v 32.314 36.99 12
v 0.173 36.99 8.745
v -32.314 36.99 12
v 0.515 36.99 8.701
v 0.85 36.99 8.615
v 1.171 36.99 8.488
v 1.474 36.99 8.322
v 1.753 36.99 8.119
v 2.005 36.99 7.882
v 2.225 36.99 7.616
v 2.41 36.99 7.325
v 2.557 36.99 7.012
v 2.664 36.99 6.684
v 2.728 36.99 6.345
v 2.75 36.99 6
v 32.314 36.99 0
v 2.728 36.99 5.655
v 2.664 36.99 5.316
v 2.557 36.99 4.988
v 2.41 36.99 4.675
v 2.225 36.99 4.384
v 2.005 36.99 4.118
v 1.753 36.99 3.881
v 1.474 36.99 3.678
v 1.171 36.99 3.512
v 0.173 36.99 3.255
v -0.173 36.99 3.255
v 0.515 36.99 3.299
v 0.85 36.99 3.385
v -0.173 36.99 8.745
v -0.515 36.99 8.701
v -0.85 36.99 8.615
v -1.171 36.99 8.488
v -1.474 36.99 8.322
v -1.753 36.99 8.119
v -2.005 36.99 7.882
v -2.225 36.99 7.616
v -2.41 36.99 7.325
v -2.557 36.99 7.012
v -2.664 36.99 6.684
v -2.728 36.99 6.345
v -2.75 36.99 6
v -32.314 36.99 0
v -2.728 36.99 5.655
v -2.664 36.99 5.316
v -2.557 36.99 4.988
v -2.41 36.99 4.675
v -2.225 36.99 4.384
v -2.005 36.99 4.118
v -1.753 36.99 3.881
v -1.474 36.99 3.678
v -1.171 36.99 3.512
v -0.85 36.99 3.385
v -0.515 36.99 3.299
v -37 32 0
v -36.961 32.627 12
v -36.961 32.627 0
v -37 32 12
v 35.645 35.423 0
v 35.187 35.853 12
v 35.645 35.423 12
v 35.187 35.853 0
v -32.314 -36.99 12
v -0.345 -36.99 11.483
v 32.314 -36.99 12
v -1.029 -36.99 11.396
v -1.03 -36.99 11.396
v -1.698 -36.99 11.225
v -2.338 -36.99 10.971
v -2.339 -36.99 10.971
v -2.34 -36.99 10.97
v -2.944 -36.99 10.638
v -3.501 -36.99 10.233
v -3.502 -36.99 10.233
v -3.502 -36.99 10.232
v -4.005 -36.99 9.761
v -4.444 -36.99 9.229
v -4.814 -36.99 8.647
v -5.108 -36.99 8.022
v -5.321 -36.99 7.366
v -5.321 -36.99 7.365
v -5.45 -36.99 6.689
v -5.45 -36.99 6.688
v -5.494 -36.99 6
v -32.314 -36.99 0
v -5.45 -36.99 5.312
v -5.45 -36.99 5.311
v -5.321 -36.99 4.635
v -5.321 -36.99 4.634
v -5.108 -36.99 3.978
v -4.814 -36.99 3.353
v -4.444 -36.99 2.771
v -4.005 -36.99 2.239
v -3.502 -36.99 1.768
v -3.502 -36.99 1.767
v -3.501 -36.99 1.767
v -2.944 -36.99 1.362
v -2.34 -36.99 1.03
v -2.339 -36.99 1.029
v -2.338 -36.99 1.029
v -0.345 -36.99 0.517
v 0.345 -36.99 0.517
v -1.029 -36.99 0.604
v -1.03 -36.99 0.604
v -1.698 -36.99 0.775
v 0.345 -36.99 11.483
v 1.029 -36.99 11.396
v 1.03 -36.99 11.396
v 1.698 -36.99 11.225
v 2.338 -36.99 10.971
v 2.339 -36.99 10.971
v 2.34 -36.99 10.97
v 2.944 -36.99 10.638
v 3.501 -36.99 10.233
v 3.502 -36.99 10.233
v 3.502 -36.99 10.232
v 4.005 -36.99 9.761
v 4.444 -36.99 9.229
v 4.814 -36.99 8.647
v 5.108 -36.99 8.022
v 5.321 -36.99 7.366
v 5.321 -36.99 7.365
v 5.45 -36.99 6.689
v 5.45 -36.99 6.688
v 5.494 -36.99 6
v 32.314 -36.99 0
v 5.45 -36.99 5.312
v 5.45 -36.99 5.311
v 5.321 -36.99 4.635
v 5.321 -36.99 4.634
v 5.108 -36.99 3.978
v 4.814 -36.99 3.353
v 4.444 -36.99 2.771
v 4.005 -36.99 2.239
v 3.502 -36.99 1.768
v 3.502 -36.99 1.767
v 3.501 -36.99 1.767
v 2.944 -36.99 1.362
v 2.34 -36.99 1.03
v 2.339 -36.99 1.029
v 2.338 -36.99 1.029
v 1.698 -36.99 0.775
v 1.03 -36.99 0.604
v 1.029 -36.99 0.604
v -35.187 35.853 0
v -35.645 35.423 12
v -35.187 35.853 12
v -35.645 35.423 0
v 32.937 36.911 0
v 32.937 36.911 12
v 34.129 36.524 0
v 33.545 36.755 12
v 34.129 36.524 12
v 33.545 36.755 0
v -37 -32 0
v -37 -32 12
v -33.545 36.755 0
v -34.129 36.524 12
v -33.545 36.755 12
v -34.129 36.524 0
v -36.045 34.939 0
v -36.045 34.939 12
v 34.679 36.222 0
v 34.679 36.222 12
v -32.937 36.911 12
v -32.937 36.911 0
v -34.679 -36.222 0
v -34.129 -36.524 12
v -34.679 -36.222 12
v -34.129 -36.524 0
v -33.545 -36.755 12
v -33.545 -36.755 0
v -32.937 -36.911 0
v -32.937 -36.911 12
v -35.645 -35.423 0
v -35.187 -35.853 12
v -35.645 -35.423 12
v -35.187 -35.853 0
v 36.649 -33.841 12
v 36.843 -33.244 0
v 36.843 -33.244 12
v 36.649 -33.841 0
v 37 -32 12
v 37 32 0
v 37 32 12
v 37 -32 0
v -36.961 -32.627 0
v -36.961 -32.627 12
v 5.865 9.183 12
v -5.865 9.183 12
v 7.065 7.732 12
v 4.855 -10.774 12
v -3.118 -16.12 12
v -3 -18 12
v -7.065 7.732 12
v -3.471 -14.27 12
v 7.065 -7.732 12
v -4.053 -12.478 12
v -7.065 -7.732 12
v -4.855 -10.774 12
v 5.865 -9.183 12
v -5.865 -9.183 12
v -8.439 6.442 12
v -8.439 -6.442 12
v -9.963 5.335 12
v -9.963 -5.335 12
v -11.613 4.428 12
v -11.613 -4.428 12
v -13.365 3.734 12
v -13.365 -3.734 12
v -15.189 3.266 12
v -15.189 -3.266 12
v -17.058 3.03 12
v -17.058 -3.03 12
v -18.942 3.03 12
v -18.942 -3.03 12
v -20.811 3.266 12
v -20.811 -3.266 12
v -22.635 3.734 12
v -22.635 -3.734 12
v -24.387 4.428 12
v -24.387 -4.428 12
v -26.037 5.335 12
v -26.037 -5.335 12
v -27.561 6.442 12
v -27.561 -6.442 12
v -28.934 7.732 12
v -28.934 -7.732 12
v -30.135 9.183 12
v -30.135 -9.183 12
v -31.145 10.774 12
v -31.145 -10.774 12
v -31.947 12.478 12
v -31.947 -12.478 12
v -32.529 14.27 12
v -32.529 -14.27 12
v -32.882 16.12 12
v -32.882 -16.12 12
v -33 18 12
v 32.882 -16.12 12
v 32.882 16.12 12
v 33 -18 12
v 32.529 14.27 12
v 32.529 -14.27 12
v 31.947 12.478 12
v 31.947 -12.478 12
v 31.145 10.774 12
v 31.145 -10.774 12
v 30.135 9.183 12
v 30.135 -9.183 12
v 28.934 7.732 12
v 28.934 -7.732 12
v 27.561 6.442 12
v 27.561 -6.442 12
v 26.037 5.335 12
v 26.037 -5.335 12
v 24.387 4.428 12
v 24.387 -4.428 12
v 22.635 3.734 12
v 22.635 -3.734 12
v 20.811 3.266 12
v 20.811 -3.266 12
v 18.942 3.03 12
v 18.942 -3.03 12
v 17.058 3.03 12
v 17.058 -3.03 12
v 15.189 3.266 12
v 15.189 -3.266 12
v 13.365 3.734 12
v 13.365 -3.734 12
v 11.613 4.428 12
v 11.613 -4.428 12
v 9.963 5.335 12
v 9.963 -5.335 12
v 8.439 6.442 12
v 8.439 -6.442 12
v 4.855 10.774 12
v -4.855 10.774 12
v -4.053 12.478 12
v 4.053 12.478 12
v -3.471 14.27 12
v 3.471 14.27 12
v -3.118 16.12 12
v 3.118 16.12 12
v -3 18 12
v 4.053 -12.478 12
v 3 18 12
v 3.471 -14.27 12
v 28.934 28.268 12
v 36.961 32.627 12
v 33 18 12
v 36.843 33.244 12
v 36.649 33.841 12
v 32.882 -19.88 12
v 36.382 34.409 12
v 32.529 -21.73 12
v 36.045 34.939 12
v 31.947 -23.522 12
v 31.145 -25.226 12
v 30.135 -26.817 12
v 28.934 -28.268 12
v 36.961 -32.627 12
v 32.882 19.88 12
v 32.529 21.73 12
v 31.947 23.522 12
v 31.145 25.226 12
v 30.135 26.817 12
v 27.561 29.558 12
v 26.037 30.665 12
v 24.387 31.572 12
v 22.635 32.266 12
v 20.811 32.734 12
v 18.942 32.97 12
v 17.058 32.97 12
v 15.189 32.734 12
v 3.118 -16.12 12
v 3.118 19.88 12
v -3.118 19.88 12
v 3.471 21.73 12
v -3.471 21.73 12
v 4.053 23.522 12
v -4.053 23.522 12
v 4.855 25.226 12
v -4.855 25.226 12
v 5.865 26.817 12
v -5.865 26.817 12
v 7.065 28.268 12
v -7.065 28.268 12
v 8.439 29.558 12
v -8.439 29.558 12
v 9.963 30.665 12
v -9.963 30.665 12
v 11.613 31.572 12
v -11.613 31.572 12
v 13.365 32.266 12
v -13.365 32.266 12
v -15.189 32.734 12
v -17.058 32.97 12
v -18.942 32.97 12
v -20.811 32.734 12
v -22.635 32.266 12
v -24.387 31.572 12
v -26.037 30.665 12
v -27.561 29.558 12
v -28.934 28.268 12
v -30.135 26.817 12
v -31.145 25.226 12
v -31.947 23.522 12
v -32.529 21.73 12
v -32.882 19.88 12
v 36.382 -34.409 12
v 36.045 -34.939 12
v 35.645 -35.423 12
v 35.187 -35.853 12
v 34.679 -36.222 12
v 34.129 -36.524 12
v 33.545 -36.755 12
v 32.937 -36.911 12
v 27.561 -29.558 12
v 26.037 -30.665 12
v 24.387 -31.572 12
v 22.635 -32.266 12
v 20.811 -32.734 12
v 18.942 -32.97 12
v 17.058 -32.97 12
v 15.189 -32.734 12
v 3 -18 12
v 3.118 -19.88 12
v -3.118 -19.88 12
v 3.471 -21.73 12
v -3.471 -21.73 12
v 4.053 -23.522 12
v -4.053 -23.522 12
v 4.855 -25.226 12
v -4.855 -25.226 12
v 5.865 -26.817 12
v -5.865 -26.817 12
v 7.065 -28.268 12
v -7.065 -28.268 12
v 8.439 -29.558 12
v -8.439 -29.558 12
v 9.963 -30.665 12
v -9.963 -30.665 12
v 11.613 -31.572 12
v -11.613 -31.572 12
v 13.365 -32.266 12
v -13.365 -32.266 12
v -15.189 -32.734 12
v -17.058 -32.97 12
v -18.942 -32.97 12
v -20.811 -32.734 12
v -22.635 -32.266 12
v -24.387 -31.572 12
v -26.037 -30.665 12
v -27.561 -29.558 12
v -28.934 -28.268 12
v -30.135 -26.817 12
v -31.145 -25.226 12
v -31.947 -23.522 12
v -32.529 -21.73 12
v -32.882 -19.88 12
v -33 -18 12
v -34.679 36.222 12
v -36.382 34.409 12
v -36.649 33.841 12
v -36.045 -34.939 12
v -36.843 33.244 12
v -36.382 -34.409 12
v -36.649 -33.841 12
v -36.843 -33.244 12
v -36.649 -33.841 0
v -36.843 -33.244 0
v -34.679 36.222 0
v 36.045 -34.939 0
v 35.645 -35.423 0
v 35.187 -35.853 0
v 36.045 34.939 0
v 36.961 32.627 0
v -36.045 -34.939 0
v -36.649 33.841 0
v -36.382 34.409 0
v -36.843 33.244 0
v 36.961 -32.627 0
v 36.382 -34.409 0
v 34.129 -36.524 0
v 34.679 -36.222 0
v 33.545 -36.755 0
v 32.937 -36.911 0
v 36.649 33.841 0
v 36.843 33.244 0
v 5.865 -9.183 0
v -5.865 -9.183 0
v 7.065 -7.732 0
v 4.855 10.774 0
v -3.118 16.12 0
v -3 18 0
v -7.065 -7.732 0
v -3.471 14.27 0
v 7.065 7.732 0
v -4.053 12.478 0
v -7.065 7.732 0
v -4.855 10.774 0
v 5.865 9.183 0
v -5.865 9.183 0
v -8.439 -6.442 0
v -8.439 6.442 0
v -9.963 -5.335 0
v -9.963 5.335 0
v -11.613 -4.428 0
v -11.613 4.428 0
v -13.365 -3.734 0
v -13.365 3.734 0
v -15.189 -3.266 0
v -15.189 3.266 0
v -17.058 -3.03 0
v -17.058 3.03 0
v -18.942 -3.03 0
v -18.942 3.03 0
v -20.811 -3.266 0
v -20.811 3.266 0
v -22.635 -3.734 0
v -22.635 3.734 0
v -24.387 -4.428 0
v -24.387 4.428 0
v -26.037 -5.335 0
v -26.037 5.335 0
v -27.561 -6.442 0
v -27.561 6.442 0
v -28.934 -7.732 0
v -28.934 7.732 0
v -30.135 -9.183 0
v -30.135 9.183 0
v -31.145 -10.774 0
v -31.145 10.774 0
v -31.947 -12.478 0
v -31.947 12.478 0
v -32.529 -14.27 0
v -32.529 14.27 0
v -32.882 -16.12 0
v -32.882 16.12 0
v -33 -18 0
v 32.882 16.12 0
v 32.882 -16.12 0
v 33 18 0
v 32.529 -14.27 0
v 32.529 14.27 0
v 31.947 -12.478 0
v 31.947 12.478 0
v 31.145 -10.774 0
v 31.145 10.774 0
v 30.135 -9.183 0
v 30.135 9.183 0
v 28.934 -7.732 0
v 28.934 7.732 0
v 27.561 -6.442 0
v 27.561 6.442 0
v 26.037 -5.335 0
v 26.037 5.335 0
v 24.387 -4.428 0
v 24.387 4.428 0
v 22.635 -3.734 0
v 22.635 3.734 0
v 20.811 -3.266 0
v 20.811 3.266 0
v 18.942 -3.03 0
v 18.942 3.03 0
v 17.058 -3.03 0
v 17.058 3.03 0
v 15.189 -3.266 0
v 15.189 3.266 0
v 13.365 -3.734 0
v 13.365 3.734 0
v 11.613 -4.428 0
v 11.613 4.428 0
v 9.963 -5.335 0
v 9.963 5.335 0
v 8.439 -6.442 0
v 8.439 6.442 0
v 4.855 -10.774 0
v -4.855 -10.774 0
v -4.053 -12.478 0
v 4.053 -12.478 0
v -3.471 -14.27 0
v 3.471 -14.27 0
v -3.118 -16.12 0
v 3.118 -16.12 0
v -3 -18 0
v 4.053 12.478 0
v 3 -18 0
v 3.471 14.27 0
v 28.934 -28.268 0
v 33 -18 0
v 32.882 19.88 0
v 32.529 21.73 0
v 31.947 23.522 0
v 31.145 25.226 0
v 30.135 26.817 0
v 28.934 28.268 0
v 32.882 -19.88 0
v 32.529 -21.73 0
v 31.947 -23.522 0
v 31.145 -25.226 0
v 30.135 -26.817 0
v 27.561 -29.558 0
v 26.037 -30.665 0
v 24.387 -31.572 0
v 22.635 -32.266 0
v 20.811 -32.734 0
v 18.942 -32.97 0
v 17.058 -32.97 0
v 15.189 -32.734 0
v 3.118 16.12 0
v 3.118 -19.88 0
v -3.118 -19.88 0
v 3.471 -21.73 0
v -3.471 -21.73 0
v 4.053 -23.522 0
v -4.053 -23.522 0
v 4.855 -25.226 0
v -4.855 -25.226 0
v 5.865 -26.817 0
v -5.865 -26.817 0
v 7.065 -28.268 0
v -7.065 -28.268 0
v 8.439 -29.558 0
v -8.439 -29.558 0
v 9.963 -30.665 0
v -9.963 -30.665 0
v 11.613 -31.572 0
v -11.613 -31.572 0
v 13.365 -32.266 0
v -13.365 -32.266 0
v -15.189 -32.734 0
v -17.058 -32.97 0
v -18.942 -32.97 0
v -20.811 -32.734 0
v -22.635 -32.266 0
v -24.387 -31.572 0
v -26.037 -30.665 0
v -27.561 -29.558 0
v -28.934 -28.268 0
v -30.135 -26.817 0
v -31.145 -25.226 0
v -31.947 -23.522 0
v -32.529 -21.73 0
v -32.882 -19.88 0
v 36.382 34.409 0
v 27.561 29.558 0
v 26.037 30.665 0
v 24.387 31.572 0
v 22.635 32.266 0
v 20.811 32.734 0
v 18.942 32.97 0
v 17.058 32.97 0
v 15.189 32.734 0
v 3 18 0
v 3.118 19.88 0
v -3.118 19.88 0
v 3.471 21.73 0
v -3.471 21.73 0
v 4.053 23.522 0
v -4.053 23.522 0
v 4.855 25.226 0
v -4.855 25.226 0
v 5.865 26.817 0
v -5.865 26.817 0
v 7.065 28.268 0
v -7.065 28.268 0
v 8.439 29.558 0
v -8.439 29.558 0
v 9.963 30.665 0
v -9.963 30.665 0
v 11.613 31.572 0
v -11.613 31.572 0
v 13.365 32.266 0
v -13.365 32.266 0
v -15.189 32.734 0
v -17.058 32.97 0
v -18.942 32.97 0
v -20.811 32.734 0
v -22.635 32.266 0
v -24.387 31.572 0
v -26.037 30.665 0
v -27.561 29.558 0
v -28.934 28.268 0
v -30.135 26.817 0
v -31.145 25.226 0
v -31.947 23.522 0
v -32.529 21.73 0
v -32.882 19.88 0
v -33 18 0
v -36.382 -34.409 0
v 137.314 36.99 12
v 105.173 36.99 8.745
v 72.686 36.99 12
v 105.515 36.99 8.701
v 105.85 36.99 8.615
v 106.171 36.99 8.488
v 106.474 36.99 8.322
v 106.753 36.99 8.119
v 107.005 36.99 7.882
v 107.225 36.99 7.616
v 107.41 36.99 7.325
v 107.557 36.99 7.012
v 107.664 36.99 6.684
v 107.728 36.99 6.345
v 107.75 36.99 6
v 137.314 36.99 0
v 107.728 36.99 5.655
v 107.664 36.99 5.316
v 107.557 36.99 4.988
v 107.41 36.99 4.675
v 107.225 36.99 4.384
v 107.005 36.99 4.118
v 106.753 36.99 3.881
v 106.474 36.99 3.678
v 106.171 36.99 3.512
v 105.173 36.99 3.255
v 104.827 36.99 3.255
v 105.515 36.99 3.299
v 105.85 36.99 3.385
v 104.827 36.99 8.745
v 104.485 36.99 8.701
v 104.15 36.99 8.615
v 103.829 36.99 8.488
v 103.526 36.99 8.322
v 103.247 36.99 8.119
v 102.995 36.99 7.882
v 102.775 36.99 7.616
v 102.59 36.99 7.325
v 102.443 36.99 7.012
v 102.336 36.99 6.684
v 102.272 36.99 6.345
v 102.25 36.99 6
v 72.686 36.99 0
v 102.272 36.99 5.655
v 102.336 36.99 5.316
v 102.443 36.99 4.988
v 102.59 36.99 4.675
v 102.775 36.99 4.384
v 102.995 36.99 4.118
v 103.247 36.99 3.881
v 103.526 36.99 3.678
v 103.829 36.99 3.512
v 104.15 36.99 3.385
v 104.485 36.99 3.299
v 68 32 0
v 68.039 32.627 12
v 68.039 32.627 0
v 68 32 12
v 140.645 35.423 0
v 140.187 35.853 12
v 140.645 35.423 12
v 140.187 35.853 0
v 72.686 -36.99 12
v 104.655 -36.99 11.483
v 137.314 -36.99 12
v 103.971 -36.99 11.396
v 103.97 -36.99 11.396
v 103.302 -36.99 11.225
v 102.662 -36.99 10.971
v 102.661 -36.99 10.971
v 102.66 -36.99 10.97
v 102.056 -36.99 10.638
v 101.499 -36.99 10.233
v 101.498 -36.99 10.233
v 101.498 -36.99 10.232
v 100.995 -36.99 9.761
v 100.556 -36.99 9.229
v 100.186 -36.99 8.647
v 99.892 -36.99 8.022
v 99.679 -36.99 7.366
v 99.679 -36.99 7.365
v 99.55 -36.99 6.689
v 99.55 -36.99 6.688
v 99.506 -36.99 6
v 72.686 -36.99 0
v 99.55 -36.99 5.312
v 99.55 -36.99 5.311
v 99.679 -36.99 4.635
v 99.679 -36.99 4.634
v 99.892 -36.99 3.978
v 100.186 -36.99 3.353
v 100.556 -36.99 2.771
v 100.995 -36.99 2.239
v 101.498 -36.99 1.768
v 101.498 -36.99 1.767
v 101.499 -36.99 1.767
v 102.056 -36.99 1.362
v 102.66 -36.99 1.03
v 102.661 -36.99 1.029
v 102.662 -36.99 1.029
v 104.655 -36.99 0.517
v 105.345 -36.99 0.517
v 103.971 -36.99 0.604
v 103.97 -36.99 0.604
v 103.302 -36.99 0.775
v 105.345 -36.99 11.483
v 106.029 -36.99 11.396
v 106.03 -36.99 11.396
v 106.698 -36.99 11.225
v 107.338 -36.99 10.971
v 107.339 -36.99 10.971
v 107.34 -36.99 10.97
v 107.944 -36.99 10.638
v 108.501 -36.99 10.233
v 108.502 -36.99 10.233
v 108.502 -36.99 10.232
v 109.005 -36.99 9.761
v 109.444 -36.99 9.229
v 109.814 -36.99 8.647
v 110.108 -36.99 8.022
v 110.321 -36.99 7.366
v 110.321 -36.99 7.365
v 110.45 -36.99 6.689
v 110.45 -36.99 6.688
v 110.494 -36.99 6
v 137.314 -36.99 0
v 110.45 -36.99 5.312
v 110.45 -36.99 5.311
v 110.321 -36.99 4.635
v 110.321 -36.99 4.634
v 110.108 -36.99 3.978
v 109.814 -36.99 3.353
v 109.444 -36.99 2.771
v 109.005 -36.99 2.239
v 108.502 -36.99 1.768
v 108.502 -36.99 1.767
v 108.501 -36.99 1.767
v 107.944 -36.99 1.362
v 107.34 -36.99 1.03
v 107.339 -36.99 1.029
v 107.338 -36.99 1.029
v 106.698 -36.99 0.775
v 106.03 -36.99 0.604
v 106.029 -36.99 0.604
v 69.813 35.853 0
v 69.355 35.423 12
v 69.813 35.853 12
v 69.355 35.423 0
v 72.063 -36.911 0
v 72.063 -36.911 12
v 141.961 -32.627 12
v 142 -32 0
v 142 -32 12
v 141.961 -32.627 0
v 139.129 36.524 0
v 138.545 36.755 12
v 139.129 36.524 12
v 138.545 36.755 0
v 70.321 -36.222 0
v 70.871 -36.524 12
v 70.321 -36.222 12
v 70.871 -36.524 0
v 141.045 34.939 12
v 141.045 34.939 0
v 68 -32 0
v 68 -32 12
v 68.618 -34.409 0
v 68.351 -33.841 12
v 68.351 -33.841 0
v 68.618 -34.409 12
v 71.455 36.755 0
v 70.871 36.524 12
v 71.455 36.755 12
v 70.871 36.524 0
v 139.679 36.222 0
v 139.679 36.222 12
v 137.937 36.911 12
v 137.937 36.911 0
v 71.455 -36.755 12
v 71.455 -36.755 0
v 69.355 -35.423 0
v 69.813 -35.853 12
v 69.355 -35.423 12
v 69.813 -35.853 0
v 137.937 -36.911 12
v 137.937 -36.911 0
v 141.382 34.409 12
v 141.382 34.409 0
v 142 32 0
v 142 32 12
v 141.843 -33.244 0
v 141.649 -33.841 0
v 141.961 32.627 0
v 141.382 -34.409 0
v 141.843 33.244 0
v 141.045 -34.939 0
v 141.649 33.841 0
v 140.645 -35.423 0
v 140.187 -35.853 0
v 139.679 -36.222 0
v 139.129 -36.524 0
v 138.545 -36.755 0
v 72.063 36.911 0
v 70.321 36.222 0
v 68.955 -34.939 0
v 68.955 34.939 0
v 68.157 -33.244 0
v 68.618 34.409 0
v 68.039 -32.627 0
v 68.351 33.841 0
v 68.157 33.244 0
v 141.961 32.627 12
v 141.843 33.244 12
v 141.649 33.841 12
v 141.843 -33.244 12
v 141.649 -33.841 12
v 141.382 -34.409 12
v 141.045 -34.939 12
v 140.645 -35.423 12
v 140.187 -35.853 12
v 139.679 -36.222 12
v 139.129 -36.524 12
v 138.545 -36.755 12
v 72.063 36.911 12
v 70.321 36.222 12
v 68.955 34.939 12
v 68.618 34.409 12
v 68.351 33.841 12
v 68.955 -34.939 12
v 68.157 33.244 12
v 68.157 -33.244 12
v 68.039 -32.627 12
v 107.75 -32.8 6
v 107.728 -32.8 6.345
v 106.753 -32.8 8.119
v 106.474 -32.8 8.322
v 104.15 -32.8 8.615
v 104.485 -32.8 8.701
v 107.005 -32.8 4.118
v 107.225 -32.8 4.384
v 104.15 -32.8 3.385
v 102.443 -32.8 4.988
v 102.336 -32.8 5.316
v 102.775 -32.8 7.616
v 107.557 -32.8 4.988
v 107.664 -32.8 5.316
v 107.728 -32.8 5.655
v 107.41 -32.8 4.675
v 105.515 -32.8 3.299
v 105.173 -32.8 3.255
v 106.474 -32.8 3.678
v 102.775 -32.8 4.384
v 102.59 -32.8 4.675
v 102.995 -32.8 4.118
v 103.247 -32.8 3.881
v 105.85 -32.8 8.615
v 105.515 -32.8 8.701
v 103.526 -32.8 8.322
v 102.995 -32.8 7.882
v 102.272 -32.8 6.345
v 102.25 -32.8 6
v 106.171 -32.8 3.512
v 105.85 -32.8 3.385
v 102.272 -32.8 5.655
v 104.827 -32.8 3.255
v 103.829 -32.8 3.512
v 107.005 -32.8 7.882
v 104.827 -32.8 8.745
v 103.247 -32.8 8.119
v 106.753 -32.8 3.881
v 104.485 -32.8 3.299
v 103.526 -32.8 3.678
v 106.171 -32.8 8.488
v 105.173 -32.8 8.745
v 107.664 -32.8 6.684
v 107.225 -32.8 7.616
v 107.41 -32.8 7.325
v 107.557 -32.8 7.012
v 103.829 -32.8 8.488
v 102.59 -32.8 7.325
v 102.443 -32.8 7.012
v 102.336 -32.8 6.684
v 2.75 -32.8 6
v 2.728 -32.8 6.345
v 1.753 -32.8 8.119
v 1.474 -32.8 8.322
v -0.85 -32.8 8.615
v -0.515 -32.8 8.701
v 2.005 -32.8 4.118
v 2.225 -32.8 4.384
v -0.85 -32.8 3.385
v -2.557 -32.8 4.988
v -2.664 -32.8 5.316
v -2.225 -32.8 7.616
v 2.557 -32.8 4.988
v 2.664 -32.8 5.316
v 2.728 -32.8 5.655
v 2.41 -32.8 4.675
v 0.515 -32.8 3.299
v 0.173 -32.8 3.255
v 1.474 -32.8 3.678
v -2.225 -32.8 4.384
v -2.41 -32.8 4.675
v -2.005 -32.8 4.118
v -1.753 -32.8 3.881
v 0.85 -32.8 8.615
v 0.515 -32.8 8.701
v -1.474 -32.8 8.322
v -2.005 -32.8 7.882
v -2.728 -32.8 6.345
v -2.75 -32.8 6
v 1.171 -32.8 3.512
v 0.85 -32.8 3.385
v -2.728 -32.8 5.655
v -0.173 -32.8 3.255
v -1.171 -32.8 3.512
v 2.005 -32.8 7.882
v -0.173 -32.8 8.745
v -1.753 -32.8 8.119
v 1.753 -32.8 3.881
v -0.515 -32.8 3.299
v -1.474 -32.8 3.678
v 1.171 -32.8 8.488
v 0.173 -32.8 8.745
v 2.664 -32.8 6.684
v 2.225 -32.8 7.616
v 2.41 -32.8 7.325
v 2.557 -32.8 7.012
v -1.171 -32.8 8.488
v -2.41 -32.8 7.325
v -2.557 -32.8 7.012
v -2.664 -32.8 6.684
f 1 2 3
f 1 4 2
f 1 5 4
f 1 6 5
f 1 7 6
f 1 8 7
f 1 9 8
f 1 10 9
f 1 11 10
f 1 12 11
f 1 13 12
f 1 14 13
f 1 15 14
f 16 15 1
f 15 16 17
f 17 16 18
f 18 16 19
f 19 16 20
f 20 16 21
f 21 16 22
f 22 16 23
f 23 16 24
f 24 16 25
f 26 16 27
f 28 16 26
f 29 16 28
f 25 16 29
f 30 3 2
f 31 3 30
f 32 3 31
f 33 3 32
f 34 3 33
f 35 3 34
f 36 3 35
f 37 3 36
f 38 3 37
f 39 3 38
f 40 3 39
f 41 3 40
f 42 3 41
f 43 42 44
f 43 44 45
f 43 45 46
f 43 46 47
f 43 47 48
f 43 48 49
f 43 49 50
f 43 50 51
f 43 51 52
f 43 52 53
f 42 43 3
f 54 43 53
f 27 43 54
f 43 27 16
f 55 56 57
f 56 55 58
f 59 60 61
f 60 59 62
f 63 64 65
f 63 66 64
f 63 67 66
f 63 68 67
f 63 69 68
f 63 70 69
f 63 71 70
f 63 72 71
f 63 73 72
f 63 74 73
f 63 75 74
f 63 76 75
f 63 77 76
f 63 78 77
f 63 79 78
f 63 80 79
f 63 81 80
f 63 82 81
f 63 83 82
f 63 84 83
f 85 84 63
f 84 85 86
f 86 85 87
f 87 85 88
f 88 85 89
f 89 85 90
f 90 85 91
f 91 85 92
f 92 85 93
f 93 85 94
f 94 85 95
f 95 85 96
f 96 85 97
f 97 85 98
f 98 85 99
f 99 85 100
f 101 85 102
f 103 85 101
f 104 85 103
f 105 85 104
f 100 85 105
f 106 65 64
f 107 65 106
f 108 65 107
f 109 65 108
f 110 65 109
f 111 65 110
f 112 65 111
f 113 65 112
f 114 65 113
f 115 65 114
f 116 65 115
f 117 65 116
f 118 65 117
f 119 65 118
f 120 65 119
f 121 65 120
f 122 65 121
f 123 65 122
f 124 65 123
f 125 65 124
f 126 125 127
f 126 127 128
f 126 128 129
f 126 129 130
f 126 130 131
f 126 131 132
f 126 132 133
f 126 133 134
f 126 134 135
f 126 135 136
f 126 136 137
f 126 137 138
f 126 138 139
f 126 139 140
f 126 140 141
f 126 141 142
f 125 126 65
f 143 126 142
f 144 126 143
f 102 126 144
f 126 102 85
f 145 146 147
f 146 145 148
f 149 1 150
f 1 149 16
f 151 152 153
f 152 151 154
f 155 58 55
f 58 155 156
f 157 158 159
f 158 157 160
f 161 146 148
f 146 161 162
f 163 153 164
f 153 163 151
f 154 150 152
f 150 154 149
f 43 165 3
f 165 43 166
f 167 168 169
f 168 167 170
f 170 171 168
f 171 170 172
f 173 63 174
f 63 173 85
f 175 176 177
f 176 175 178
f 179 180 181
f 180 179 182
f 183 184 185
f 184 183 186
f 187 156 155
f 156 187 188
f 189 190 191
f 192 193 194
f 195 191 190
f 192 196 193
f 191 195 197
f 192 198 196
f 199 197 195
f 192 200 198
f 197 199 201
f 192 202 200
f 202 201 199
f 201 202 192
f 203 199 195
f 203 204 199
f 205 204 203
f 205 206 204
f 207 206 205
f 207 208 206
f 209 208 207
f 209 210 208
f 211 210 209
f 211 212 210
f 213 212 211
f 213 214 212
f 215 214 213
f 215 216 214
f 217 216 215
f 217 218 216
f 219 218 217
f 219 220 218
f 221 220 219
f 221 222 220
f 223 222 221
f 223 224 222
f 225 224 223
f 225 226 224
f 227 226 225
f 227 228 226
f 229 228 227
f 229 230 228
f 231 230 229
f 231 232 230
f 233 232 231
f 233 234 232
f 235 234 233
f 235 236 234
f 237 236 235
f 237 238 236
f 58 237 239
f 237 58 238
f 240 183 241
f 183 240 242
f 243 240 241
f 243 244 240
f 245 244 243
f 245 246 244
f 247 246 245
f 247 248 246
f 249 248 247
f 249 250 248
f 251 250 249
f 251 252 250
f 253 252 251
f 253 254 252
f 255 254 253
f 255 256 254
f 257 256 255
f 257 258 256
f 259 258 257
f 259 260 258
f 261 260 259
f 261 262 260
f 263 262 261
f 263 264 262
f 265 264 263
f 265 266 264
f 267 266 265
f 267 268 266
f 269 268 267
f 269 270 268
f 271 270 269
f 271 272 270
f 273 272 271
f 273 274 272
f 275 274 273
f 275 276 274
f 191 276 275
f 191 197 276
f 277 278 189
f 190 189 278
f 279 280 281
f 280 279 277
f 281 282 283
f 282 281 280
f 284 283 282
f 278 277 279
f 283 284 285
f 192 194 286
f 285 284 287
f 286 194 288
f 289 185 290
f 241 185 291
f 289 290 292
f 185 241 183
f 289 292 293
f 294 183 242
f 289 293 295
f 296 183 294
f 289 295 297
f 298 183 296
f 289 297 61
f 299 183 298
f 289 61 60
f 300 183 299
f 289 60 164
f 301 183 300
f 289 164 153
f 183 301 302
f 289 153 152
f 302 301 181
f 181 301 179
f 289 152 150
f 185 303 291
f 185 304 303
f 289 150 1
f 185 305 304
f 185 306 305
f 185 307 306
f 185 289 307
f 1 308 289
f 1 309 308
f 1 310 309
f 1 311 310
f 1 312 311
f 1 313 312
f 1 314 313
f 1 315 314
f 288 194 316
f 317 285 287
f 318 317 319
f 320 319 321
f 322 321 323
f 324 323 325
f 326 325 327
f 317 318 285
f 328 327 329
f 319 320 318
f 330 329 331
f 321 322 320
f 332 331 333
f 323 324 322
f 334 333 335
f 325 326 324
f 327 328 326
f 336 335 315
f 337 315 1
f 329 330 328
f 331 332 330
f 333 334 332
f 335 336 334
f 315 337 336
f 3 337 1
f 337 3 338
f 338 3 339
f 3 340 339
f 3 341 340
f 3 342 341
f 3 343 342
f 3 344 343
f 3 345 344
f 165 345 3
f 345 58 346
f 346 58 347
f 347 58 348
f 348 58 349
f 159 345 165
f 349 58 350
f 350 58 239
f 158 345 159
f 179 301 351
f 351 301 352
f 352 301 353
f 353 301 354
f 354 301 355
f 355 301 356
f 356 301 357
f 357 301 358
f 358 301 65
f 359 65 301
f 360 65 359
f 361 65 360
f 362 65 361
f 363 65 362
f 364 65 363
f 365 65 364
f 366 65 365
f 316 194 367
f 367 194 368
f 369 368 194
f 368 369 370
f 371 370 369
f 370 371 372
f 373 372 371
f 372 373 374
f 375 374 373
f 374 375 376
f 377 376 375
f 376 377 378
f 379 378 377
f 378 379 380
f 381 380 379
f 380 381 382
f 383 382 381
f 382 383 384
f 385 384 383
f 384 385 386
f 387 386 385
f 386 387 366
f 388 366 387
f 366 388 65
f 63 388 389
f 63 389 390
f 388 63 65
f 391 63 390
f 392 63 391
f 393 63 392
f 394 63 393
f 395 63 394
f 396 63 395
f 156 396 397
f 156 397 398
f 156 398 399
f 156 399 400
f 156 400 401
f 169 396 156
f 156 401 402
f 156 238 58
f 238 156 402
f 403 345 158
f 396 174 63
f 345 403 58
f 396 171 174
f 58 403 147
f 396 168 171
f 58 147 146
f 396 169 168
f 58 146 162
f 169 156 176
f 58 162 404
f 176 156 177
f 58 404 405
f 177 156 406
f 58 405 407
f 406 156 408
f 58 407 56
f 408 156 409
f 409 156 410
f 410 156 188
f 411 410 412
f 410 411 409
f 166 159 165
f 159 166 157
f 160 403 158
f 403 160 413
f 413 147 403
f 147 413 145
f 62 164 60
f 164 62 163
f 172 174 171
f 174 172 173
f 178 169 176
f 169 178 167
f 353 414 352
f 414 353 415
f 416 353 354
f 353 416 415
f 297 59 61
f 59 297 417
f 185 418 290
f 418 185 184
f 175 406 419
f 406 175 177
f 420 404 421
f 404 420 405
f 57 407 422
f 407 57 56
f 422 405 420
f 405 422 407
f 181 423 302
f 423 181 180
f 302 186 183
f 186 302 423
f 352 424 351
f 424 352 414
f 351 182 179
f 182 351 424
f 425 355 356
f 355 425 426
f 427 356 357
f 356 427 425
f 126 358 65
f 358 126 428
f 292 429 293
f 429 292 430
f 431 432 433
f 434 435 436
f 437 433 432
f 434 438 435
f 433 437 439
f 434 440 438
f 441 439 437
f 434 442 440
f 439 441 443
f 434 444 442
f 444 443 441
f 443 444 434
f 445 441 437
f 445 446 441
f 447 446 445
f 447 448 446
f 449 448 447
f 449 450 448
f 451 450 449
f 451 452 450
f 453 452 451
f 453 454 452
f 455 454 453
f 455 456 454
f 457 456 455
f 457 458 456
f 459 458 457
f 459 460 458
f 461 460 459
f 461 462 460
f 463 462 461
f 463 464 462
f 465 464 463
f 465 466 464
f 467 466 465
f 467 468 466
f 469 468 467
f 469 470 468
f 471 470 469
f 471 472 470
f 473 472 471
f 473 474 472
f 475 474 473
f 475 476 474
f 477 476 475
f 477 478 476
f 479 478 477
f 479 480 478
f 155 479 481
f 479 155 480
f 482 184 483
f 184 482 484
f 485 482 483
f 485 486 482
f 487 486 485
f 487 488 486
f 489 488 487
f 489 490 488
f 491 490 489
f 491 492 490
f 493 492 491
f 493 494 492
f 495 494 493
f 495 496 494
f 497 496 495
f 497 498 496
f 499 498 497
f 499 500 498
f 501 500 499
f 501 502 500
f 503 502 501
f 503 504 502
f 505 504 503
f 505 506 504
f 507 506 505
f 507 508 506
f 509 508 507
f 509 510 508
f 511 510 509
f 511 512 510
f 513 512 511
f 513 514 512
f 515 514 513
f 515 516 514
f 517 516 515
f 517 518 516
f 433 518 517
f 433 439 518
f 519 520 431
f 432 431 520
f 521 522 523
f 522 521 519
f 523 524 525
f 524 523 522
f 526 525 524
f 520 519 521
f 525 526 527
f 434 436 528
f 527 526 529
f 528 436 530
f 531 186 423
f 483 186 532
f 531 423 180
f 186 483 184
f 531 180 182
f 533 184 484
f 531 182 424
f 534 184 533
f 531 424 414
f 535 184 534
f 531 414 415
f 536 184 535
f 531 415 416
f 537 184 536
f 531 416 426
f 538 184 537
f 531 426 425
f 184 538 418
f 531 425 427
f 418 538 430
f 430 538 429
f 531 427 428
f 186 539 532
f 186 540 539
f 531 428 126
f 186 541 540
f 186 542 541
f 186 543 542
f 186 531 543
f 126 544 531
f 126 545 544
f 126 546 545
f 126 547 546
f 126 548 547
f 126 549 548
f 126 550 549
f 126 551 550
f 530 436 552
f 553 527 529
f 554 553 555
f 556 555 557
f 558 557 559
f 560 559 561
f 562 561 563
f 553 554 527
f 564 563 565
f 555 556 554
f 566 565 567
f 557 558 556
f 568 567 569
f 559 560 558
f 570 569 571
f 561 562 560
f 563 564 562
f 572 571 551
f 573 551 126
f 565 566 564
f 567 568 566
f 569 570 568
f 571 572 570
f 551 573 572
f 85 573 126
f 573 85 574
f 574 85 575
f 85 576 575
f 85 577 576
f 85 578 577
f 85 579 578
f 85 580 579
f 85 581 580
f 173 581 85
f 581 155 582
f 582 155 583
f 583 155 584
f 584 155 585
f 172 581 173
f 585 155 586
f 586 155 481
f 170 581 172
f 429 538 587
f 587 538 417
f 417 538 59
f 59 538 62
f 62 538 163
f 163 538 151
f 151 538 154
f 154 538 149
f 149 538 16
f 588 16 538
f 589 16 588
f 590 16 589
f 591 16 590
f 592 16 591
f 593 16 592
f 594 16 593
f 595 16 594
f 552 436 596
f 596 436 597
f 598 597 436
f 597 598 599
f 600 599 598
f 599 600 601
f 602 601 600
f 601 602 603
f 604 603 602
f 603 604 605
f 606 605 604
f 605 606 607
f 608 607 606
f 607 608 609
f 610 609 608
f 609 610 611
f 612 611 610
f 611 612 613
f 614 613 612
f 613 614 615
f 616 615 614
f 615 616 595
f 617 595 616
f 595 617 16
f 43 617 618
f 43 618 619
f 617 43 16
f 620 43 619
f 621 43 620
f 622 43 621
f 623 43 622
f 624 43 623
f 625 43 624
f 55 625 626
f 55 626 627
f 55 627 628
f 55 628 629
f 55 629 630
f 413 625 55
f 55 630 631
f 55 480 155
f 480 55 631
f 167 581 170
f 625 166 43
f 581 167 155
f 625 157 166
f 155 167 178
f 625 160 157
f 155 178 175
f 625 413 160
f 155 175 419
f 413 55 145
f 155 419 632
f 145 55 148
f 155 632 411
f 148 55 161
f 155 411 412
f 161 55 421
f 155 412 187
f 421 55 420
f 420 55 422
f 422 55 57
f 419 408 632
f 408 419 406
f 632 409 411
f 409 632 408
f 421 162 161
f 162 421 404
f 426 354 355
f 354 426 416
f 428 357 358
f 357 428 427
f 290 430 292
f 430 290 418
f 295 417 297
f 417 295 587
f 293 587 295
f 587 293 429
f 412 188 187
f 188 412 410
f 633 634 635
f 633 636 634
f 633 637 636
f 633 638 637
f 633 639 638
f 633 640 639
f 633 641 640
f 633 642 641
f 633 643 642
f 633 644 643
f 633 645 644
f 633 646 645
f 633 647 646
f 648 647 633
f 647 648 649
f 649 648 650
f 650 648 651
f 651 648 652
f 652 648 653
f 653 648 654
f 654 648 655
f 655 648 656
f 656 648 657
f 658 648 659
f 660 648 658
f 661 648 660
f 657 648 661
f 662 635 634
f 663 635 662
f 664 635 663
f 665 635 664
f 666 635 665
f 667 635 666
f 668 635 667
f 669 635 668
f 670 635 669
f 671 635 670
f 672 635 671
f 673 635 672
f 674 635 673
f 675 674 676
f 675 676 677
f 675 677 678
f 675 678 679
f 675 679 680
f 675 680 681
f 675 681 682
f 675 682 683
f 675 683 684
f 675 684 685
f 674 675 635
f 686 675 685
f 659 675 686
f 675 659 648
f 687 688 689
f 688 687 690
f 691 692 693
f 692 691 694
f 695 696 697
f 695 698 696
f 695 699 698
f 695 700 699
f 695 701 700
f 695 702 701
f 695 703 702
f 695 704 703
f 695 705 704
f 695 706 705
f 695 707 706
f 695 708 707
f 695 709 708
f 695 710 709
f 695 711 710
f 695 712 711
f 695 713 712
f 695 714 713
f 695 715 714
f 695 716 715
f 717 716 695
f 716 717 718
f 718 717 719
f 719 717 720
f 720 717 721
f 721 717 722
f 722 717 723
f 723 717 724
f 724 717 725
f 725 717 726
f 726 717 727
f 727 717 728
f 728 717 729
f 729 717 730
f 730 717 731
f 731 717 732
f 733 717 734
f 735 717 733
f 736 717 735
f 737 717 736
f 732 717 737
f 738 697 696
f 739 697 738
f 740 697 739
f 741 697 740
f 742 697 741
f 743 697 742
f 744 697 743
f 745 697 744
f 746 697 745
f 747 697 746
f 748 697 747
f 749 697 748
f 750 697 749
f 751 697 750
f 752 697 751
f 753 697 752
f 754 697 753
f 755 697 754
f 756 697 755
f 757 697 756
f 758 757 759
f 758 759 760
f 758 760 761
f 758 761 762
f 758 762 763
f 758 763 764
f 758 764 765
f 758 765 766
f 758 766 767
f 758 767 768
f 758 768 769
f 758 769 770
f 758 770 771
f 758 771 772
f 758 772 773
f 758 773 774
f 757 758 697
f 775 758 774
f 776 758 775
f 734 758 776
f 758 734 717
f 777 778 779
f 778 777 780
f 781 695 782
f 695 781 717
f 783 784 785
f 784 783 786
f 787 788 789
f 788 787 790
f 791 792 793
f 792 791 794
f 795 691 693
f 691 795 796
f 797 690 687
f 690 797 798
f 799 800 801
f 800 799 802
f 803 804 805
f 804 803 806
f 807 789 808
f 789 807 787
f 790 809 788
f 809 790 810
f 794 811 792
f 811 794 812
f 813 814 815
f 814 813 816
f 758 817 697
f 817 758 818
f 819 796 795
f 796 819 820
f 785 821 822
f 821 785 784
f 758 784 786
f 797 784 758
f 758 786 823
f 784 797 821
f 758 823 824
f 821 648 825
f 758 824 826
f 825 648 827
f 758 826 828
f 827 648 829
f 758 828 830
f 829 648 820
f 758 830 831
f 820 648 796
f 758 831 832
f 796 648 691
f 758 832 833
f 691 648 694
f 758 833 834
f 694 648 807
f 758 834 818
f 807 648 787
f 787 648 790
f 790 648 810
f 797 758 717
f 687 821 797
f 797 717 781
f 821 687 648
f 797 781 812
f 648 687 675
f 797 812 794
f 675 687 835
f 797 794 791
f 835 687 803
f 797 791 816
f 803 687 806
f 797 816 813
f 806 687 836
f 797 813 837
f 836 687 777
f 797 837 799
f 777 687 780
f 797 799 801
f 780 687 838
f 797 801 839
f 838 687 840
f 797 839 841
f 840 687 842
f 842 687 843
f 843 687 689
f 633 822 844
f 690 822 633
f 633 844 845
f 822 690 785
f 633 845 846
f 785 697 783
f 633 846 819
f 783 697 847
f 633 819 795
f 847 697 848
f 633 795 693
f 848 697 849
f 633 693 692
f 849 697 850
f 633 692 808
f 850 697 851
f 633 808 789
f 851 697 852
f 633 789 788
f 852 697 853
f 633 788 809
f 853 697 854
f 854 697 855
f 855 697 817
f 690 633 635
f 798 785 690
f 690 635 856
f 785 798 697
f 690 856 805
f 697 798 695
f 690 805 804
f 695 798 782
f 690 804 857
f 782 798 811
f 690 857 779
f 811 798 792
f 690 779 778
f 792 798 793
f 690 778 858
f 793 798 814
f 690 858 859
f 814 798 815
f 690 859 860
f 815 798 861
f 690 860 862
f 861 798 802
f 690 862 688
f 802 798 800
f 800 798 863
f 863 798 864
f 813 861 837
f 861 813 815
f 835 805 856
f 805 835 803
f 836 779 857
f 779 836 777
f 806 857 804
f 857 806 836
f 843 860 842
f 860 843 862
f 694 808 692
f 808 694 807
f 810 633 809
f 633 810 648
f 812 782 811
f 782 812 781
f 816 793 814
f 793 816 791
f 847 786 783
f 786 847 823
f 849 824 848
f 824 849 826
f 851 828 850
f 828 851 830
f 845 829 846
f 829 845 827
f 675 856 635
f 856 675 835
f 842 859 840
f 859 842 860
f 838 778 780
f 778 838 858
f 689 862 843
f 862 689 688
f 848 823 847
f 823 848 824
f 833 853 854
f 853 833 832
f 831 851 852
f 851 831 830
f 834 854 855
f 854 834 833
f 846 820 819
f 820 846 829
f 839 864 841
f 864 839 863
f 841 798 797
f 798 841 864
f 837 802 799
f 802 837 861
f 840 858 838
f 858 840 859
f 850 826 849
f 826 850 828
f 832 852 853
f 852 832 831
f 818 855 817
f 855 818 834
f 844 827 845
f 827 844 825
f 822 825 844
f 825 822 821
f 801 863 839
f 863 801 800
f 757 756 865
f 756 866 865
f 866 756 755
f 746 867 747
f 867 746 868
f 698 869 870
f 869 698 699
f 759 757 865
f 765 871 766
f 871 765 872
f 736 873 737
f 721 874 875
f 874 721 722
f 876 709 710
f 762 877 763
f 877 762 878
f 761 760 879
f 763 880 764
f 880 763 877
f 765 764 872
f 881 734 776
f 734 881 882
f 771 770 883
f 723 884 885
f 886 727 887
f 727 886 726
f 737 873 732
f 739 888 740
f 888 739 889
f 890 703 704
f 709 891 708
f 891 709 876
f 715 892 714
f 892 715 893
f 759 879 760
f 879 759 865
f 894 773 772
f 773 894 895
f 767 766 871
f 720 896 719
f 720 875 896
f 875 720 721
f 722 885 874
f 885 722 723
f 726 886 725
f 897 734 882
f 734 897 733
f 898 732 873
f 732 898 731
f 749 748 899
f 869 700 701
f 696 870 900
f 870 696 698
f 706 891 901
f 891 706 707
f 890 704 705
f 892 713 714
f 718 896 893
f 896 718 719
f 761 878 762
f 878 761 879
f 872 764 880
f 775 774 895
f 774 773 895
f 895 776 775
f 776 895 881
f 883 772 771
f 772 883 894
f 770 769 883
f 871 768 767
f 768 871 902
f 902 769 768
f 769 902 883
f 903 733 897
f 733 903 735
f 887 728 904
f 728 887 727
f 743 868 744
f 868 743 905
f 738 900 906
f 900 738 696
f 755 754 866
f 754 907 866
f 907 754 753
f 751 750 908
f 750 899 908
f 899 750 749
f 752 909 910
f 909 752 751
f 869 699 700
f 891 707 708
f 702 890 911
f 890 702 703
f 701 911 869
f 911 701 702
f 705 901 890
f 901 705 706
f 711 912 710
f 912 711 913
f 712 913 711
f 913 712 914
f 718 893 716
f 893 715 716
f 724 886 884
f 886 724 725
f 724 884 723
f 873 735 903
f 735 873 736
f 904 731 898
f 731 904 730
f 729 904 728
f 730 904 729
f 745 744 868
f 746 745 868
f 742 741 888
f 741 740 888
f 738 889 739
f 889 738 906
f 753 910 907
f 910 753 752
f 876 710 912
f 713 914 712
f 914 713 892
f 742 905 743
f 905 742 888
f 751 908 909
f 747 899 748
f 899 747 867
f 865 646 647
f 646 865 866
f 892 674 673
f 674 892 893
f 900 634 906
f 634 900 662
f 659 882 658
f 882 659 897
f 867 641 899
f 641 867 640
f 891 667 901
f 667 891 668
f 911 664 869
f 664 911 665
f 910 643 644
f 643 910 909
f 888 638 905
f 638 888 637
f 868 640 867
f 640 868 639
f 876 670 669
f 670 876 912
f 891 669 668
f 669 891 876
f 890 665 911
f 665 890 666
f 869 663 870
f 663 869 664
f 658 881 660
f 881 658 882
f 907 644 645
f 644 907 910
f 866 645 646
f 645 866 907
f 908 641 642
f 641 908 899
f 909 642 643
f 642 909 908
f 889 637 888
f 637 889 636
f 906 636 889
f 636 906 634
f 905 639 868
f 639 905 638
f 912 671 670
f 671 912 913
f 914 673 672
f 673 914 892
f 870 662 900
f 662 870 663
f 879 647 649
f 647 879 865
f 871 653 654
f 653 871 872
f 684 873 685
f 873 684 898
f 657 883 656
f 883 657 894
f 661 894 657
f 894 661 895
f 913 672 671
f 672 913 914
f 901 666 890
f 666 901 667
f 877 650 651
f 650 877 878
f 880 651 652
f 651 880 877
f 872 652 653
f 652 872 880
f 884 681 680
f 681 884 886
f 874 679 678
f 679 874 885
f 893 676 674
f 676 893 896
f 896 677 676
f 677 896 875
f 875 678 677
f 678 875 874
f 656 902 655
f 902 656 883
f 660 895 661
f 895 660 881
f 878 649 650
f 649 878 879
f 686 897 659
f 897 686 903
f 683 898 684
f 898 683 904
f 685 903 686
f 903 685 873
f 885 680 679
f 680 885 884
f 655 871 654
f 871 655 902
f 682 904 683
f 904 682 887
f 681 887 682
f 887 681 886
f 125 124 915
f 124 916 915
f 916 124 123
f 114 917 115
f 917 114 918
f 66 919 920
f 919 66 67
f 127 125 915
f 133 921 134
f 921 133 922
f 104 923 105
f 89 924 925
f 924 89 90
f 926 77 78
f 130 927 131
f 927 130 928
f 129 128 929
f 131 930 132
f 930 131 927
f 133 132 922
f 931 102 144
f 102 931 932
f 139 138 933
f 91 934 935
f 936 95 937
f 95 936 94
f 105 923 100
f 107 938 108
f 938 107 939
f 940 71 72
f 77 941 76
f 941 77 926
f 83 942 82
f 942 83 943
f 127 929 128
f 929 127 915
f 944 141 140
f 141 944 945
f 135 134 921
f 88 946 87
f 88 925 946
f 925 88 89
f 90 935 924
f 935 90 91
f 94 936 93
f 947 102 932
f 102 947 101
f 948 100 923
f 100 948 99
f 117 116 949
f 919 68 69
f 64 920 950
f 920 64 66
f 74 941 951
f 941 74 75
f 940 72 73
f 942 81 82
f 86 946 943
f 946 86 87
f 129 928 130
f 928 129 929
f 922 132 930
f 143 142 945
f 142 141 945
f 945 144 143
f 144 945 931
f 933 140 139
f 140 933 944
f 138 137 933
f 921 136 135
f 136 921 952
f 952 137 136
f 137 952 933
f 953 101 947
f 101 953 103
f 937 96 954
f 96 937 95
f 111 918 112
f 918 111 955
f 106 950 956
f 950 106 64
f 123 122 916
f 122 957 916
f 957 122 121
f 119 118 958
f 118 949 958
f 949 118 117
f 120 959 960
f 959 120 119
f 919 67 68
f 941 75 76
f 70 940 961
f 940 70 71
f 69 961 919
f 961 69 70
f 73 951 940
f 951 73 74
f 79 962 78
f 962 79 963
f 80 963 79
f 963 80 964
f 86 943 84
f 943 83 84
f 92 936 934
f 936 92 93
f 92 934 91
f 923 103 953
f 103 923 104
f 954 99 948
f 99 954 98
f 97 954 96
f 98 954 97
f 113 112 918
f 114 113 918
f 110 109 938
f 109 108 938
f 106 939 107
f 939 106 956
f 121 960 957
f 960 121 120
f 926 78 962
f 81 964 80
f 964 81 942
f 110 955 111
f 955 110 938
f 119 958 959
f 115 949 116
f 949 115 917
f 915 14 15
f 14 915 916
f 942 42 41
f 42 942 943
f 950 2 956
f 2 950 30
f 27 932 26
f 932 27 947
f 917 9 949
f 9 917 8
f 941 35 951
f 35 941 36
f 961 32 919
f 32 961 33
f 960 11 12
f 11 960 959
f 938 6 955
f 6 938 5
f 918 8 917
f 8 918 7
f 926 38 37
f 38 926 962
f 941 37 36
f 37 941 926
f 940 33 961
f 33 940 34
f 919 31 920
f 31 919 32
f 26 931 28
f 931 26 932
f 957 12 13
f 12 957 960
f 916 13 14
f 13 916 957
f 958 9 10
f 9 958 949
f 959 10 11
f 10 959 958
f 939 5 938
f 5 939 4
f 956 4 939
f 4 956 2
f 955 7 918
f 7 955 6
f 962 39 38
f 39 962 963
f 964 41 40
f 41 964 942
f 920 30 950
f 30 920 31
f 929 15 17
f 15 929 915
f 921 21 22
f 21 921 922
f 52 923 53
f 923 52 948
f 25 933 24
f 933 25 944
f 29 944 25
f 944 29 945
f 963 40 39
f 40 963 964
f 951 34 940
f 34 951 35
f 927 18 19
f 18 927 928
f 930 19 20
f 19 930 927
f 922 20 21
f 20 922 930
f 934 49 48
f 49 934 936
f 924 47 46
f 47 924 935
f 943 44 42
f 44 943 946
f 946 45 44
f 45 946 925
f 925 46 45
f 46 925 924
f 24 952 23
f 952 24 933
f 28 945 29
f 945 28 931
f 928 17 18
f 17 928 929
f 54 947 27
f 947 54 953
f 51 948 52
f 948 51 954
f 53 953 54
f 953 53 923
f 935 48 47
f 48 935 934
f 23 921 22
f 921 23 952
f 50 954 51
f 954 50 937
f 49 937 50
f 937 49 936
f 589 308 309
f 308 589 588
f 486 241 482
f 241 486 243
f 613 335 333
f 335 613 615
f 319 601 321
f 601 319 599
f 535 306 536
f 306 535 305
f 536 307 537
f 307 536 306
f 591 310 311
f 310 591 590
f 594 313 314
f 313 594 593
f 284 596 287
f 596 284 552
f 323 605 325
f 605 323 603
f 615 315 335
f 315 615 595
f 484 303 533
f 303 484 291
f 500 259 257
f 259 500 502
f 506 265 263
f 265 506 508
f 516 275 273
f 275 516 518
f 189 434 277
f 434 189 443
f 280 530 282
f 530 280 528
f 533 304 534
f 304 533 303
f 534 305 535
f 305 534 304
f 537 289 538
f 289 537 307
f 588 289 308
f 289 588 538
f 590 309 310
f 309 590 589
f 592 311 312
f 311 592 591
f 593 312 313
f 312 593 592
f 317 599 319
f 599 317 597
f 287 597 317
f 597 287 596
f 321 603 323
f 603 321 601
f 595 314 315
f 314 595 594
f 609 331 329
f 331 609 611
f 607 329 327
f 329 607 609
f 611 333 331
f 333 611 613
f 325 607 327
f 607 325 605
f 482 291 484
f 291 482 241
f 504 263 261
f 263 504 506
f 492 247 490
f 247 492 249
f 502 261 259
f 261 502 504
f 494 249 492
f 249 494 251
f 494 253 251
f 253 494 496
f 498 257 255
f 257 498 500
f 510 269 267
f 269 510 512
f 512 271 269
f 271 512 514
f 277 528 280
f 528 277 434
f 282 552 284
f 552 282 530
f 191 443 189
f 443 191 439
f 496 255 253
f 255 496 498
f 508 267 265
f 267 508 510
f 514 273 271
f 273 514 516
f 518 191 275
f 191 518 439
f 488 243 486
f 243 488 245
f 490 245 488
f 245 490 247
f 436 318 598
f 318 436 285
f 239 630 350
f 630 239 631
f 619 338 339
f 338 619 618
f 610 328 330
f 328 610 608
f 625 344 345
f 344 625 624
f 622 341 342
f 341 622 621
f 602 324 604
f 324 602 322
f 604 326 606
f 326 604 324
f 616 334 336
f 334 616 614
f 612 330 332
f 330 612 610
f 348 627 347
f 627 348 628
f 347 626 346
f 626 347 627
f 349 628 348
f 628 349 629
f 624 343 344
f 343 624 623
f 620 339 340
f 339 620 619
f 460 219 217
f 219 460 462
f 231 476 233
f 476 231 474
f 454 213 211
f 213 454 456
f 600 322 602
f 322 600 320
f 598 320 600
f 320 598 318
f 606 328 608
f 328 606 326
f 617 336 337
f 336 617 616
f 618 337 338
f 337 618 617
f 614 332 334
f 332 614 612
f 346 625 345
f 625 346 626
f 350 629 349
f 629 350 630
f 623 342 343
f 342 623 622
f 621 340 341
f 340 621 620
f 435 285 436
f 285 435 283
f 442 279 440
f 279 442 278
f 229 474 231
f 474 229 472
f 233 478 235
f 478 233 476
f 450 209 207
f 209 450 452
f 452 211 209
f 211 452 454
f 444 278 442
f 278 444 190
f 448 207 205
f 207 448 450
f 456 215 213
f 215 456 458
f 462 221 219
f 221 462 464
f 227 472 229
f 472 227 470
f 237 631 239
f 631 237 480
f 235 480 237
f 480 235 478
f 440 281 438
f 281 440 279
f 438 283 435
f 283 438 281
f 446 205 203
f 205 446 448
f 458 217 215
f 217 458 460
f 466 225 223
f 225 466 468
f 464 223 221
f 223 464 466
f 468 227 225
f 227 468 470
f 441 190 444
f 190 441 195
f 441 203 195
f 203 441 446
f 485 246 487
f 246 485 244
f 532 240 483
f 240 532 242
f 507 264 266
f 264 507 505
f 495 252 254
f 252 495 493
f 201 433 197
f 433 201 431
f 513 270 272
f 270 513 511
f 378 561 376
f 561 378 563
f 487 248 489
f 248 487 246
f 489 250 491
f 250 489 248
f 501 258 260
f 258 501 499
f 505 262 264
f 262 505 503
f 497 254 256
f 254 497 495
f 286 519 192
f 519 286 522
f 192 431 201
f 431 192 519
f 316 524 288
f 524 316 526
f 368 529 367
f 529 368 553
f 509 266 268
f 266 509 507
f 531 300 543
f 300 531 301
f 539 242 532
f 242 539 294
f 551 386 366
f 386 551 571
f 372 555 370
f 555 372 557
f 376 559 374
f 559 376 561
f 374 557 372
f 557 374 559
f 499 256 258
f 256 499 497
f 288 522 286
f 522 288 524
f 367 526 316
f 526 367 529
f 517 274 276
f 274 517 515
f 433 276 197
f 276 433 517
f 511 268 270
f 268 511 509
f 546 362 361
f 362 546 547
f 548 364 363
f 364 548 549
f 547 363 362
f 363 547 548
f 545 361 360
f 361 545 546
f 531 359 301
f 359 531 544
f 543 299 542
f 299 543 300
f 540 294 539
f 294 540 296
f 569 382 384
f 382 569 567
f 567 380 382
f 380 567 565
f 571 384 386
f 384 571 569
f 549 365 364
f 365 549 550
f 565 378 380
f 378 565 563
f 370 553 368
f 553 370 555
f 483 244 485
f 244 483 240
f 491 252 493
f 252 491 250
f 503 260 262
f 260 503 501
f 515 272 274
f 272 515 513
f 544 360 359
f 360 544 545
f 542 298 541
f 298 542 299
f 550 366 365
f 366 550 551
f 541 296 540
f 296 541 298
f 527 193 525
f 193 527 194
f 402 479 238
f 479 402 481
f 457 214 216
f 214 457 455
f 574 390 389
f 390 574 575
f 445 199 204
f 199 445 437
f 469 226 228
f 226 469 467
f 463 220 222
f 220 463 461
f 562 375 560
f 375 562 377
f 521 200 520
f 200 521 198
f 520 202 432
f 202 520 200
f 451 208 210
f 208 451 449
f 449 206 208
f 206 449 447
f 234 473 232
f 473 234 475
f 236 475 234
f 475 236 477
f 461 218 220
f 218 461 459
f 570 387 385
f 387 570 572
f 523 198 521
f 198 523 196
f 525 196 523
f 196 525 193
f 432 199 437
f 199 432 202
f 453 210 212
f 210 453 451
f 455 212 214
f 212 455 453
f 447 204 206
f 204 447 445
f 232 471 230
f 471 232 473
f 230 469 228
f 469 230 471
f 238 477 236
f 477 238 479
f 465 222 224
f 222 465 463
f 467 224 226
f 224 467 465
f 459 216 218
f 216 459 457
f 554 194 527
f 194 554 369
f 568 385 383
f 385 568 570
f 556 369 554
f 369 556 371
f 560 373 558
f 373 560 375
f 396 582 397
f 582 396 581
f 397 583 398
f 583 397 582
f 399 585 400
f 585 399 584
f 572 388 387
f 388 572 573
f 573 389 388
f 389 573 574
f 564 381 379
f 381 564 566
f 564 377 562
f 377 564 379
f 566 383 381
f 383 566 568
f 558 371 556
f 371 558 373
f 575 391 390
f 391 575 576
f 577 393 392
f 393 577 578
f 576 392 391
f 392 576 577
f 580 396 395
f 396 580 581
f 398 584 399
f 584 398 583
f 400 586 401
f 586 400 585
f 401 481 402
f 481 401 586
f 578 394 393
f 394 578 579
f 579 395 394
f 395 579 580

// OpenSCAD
$fn = 50;


difference() {
	union() {
		hull() {
			translate(v = [-32.0000000000, 32.0000000000, 0]) {
				cylinder(h = 12, r = 5);
			}
			translate(v = [32.0000000000, 32.0000000000, 0]) {
				cylinder(h = 12, r = 5);
			}
			translate(v = [-32.0000000000, -32.0000000000, 0]) {
				cylinder(h = 12, r = 5);
			}
			translate(v = [32.0000000000, -32.0000000000, 0]) {
				cylinder(h = 12, r = 5);
			}
		}
		translate(v = [105, 0, 0]) {
			hull() {
				translate(v = [-32.0000000000, 32.0000000000, 0]) {
					cylinder(h = 12, r = 5);
				}
				translate(v = [32.0000000000, 32.0000000000, 0]) {
					cylinder(h = 12, r = 5);
				}
				translate(v = [-32.0000000000, -32.0000000000, 0]) {
					cylinder(h = 12, r = 5);
				}
				translate(v = [32.0000000000, -32.0000000000, 0]) {
					cylinder(h = 12, r = 5);
				}
			}
		}
	}
	union() {
		translate(v = [105, -37.0000000000, 6.0000000000]) {
			rotate(a = [90, 0, 0]) {
				difference() {
					union() {
						#translate(v = [0, 0, -74.0000000000]) {
							cylinder(h = 74, r = 2.2500000000);
						}
						#translate(v = [0, 0, -4.2000000000]) {
							cylinder(h = 4.2000000000, r1 = 2.7500000000, r2 = 5.5000000000);
						}
						#cylinder(h = 250, r = 5.5000000000);
						#translate(v = [0, 0, -74.0000000000]) {
							cylinder(h = 74, r = 2.7500000000);
						}
						#translate(v = [0, 0, -74.0000000000]) {
							cylinder(h = 74, r = 2.2500000000);
						}
					}
					union();
				}
			}
		}
		translate(v = [0, -37.0000000000, 6.0000000000]) {
			rotate(a = [90, 0, 0]) {
				difference() {
					union() {
						#translate(v = [0, 0, -74.0000000000]) {
							cylinder(h = 74, r = 2.2500000000);
						}
						#translate(v = [0, 0, -4.2000000000]) {
							cylinder(h = 4.2000000000, r1 = 2.7500000000, r2 = 5.5000000000);
						}
						#cylinder(h = 250, r = 5.5000000000);
						#translate(v = [0, 0, -74.0000000000]) {
							cylinder(h = 74, r = 2.7500000000);
						}
						#translate(v = [0, 0, -74.0000000000]) {
							cylinder(h = 74, r = 2.2500000000);
						}
					}
					union();
				}
			}
		}
		#translate(v = [18, 18, 0.0000000000]) {
			cylinder(h = 12, r = 15.0000000000);
		}
		#translate(v = [-18, 18, 0.0000000000]) {
			cylinder(h = 12, r = 15.0000000000);
		}
		#translate(v = [18, -18, 0.0000000000]) {
			cylinder(h = 12, r = 15.0000000000);
		}
		#translate(v = [-18, -18, 0.0000000000]) {
			cylinder(h = 12, r = 15.0000000000);
		}
	}
}
